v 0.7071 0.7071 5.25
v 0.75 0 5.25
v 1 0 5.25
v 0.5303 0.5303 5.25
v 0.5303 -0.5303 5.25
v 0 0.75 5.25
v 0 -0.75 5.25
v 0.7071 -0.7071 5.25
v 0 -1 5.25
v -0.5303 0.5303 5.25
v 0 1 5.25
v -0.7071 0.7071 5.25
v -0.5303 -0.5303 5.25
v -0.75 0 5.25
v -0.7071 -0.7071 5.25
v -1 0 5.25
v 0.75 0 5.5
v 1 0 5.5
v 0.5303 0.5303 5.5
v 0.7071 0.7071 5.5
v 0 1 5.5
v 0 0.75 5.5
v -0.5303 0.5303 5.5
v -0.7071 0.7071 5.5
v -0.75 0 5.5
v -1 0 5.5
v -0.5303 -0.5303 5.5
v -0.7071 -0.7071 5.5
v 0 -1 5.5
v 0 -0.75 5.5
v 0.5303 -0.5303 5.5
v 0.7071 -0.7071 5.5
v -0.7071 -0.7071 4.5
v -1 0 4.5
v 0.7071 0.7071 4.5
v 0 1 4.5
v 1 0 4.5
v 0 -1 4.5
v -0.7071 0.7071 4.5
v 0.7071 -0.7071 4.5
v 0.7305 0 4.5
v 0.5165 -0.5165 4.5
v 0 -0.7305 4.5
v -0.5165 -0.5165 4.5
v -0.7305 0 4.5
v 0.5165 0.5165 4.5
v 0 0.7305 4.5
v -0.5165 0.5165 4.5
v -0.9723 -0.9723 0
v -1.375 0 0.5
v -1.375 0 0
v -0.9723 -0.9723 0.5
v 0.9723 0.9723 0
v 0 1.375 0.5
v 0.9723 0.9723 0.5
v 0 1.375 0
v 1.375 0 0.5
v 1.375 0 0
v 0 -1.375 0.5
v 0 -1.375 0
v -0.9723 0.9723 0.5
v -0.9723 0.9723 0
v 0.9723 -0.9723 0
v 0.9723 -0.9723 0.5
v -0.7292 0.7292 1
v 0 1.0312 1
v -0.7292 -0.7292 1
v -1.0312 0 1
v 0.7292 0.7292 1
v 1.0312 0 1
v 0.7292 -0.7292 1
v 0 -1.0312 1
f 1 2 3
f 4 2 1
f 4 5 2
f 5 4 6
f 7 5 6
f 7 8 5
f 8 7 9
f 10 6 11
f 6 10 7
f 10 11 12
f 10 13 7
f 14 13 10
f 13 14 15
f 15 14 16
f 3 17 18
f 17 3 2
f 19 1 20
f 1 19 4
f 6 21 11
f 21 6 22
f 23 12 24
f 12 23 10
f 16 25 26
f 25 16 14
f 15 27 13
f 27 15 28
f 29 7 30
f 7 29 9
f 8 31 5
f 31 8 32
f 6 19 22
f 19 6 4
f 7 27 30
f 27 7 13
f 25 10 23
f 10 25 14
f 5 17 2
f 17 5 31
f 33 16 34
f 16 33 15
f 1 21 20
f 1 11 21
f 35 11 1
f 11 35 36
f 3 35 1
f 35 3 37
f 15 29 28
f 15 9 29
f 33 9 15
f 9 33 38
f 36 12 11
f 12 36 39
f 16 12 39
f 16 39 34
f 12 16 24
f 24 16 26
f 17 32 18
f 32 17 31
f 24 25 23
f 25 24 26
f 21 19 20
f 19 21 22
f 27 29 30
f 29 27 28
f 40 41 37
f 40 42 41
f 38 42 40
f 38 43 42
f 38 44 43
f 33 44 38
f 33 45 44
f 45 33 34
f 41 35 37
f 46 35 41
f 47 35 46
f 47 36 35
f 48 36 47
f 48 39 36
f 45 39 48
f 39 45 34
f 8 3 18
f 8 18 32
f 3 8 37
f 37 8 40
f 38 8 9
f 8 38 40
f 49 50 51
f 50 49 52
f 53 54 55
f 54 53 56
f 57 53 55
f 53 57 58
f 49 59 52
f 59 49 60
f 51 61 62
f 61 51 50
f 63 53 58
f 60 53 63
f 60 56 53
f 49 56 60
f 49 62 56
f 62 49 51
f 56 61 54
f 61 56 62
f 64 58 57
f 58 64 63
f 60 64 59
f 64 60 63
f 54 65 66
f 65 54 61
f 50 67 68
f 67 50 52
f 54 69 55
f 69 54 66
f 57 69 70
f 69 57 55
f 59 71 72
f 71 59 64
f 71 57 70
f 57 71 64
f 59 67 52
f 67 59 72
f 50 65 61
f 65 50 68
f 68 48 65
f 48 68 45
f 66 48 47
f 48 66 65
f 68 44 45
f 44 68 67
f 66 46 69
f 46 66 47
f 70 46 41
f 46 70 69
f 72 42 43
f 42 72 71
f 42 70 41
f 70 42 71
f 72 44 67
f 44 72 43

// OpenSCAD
// FIDE Standards have some flexibility
// https://www.fide.com/FIDE/handbook/Standards_of_Chess_Equipment_and_tournament_venue.pdf
// FIDE Handbook C.02.2.2 Height,weight,proportions
// 	- King – 9.5 cm, 
// 	- Queen – 8.5 cm, 
// 	- Bishop – 7 cm, 
// 	- Knight – 6 cm, 
// 	- Rook – 5.5 cm and 
// 	- Pawn – 5 cm. 
// 	- The diameter of the piece's base should measure 40- 50% of its height.
// 	- These dimensions may differ up to 10% from the above recommendation,
// 		- but the order (e.g. King is higher than Queen etc.) must be kept.
// We are going to transgress C.02.2.3
// FIDE Handbook C.02.3.2 Size of the square and the board
// 	- The side of the square should measure 5 to 6 cm. 
// 	- Referring to 2.2 the side of a square should be at least twice the diameter of a pawn’s base (it means four paws on one square).

$fn = 8;
total_height = 5.5;
base_diameter = total_height / 2;
base_radius = base_diameter / 2;

// How is the base height dependent on piece height?
base_height = 1;

// The rook has a wider stem
stem_radius = base_radius / 2;
stem_base_radius = base_radius * (3/4);

// I like several different low poly designs for the castle ridges
// I like the ridge going over the corner
// I also like the simplicity of every other face having a ridge
head_radius = 1;
head_height = 1;
stem_height = total_height - base_height - (head_height / 2);

// ridge_offset will set the ridges to go over the corners
ridge_offset_check = 0;
ridge_offset = ridge_offset_check * ((360/$fn)/2);

cylinder(base_height/2, r = base_radius);
translate([0, 0, base_height/2]) 
	cylinder(base_height/2, base_radius, stem_base_radius);
translate([0, 0, base_height])
	cylinder(stem_height, stem_base_radius, stem_radius);
difference() {
	translate([0, 0, total_height - head_height])
		cylinder(head_height, r = head_radius);
	translate([0, 0, total_height - (head_height/4)]) {
		cylinder(head_height, r = head_radius * 0.75);
		// this rotation will work for $fn = 8 or 6
		for (i = [0:(($fn/2)-1)]) {
			rotate([0, 0, (i * (360/($fn/2))) - ridge_offset])
				rotate_extrude(angle = 360/$fn)
					square([head_radius + 0.25, head_height]);
		}		
	}
}
